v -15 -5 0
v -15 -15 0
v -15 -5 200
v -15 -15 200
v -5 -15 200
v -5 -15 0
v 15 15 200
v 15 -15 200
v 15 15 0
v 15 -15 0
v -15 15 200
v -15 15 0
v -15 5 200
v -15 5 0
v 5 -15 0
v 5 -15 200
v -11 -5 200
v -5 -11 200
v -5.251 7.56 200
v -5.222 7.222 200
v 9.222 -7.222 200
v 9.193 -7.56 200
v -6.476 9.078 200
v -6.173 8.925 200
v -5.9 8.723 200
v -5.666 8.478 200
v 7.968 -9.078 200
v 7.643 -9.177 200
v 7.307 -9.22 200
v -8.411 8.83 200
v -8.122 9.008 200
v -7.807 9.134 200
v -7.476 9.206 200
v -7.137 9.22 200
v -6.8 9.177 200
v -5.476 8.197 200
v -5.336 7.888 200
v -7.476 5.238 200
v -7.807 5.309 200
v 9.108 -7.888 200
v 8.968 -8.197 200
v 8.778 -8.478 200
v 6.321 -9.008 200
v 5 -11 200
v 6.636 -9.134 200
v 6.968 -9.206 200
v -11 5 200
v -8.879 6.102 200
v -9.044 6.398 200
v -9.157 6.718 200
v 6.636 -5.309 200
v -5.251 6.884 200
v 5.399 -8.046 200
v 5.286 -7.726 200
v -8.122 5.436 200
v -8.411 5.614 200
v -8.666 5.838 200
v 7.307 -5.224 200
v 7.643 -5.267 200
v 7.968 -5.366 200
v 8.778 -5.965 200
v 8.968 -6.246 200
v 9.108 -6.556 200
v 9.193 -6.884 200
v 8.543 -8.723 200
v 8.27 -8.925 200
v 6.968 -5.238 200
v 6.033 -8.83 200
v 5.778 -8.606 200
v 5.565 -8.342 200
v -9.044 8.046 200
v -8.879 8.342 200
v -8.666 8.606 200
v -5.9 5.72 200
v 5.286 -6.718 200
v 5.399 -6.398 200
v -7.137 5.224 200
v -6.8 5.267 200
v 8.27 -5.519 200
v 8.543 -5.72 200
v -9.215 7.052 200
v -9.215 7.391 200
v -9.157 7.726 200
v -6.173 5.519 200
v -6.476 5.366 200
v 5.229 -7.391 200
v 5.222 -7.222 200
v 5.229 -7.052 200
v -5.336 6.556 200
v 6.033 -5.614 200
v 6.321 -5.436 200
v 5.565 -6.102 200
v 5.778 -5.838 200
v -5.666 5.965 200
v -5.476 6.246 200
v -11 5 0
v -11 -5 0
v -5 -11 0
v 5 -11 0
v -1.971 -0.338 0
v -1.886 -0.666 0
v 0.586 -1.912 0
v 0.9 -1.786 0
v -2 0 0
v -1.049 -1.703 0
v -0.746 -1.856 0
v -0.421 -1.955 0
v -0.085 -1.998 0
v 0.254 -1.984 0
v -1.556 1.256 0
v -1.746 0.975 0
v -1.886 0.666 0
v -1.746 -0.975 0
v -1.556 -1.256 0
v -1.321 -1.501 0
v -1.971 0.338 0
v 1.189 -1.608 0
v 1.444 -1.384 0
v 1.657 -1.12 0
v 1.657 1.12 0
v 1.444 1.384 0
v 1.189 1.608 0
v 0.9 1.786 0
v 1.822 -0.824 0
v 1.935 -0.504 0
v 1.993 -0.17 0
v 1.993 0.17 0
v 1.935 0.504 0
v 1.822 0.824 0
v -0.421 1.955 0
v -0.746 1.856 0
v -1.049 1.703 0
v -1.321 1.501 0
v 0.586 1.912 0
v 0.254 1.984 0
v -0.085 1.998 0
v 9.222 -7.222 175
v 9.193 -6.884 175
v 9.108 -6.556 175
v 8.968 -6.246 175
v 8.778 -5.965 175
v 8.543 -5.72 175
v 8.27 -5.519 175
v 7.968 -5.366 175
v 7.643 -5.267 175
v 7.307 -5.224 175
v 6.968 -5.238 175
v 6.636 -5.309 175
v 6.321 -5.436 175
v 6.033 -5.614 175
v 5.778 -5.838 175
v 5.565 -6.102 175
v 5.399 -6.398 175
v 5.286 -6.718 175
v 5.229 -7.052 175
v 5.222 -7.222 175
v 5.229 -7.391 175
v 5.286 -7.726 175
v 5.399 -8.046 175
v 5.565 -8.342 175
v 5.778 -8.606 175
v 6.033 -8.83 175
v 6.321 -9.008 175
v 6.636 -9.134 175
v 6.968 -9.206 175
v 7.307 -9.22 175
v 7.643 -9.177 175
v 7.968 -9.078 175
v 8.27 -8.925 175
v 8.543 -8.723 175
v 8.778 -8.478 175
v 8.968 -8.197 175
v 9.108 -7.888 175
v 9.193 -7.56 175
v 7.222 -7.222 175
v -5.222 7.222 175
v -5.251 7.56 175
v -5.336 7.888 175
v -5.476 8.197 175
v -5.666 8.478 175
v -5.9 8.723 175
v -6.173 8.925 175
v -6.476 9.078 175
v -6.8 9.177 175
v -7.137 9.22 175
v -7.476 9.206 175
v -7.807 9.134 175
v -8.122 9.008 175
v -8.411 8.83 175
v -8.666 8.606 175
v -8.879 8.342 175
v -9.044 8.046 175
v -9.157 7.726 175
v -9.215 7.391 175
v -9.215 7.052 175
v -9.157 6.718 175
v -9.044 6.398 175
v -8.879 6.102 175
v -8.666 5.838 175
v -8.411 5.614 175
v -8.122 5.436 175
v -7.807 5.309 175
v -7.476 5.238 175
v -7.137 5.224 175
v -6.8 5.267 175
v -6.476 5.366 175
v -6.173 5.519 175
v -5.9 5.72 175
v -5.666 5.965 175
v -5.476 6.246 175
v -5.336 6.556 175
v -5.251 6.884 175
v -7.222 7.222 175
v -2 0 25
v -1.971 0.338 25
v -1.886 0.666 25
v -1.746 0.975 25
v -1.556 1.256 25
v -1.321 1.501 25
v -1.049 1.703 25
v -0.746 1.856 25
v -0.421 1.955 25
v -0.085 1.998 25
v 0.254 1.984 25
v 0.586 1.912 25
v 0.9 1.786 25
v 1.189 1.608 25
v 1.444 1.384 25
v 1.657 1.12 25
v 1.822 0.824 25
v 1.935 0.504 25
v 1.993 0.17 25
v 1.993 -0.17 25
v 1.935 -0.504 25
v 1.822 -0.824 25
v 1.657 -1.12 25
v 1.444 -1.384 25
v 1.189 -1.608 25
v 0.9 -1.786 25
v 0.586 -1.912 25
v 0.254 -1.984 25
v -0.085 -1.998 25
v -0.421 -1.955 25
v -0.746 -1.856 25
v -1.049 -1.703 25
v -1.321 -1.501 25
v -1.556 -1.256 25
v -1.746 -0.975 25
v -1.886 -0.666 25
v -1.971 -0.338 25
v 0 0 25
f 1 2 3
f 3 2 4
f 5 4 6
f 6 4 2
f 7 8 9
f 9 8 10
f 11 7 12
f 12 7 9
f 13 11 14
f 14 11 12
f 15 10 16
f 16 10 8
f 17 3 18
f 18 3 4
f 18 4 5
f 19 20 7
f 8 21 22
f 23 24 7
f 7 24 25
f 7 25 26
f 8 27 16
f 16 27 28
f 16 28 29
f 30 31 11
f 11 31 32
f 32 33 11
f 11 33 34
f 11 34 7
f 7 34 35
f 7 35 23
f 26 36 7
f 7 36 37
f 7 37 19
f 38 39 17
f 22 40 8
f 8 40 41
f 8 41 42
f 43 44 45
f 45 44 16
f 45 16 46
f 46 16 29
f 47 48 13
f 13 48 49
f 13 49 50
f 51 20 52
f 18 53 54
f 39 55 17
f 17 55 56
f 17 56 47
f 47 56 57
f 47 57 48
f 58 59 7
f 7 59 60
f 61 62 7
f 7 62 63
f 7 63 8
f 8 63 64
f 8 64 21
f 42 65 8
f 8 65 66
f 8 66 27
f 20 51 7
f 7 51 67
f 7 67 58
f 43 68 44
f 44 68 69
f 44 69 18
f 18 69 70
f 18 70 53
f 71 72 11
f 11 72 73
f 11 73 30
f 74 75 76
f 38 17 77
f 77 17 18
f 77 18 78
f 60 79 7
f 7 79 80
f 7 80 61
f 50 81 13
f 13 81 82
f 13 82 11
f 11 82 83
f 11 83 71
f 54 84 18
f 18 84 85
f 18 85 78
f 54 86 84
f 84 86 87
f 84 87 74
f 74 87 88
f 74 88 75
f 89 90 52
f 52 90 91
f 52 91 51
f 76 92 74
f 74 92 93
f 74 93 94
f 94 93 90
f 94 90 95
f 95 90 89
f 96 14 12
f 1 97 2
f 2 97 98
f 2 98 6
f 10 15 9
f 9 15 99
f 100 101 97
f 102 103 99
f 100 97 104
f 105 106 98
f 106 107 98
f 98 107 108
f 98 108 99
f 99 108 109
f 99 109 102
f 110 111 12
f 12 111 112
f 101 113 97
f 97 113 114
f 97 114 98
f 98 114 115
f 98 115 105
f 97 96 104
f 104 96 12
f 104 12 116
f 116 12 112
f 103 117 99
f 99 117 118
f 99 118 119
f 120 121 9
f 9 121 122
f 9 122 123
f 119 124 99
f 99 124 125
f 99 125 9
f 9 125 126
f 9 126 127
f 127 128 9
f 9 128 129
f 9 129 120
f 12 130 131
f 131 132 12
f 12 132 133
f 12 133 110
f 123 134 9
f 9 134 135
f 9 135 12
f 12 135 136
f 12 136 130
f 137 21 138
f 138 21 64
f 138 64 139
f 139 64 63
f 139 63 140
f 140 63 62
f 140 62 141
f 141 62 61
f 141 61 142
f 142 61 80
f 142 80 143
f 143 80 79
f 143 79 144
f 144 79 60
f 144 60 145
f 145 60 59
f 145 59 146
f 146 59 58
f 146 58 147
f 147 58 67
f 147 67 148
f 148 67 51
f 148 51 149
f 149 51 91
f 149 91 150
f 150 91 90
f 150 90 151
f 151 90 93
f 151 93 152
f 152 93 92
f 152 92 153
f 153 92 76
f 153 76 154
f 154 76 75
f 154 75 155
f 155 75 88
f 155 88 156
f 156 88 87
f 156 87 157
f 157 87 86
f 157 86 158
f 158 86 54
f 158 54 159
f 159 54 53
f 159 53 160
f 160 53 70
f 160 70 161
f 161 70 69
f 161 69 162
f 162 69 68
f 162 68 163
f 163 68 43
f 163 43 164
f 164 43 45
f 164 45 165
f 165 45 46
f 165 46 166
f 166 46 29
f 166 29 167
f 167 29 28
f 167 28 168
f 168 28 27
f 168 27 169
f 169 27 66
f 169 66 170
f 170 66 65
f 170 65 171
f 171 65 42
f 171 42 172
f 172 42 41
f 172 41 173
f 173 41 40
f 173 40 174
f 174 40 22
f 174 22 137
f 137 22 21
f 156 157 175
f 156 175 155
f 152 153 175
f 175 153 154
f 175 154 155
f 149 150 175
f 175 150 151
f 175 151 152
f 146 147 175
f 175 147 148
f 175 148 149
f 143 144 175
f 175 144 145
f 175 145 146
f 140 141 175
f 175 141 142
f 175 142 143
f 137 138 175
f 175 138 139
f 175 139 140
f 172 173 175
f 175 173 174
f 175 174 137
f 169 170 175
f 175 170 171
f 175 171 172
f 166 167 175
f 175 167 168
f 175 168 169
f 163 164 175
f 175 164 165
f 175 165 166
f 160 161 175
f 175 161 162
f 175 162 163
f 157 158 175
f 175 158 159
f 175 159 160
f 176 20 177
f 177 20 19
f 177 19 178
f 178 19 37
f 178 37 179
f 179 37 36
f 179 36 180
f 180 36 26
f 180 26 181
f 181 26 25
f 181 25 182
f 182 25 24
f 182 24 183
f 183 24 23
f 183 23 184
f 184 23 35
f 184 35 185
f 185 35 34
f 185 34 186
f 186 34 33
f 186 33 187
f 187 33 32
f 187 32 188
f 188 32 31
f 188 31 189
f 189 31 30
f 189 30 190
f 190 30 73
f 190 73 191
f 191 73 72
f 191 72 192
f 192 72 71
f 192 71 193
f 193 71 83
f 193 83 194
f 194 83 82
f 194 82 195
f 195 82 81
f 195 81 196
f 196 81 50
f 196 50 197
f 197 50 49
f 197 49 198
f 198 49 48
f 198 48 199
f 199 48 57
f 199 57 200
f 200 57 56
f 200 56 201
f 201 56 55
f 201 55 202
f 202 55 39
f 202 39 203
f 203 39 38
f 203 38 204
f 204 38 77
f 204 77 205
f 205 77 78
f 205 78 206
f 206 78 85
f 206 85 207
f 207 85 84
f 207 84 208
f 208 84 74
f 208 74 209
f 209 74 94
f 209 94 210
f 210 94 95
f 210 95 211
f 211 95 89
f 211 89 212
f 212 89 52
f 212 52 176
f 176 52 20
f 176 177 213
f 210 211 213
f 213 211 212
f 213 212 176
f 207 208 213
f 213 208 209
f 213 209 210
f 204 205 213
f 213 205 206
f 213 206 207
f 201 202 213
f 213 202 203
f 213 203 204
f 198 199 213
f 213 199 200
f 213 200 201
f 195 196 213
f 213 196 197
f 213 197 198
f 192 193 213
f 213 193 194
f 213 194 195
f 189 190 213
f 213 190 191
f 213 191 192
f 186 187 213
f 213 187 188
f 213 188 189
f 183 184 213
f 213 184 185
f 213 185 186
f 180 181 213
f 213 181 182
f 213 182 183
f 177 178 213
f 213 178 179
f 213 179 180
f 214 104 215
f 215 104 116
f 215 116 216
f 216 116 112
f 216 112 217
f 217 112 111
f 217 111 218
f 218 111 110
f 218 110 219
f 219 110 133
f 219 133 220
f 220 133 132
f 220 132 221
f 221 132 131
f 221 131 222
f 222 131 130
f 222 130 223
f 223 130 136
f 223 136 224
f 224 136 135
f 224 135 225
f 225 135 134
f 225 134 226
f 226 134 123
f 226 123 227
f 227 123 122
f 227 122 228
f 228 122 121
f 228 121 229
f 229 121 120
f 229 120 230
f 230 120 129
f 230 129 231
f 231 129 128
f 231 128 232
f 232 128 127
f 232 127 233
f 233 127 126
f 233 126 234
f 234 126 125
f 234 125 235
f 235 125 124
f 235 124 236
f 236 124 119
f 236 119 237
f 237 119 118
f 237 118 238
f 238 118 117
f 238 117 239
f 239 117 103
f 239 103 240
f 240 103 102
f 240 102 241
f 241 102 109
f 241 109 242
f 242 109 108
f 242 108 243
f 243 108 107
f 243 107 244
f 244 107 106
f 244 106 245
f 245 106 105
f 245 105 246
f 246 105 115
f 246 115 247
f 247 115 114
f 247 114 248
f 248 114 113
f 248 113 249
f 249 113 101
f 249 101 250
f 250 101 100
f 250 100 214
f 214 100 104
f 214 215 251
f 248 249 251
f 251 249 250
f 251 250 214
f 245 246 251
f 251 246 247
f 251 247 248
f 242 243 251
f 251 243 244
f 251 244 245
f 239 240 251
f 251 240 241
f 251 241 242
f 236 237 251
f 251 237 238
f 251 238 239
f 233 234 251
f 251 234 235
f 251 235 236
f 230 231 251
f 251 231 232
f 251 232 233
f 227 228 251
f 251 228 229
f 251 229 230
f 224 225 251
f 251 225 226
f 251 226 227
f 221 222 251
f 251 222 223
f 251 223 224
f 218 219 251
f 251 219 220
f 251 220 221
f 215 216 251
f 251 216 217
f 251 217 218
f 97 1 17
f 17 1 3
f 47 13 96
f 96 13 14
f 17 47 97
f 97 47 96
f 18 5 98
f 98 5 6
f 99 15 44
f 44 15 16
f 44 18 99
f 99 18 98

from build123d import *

# Parameters (mm, degrees)
CROQUIS1_W              = 30
CROQUIS1_H              = 30
SALIENTE_EXTRUIR1_DEPTH = 200
CROQUIS2_R              = 2
CORTAR_EXTRUIR1_DEPTH   = 25
CROQUIS4_R              = 2
CORTAR_EXTRUIR3_DEPTH   = 25
CROQUIS5_W              = 10
CROQUIS5_H              = 8
CROQUIS5_W_2            = 8
CROQUIS5_H_2            = 10
CORTAR_EXTRUIR4_DEPTH   = 200


with BuildPart() as part:
    # Croquis1 → Saliente-Extruir1 (new body)
    with BuildSketch(Plane.XY):
        Rectangle(CROQUIS1_W, CROQUIS1_H)
    extrude(amount=SALIENTE_EXTRUIR1_DEPTH)

    # Croquis2 → Cortar-Extruir1 (cut)
    with BuildSketch(Plane.XY.offset(200)):
        with Locations((-7.221825407, 7.221825407)):
            Circle(CROQUIS2_R)
        with Locations(Location((7.221825407, -7.221825407, 0), (0, 0, 180))):
            Circle(CROQUIS2_R)
    extrude(amount=-CORTAR_EXTRUIR1_DEPTH, mode=Mode.SUBTRACT)

    # Croquis4 → Cortar-Extruir3 (cut)
    with BuildSketch(Plane(origin=(0, 0, 0), x_dir=(-1, 0, 0), z_dir=(0, 0, -1))):
        Circle(CROQUIS4_R)
    extrude(amount=-CORTAR_EXTRUIR3_DEPTH, mode=Mode.SUBTRACT)

    # Croquis5 → Cortar-Extruir4 (cut)
    with BuildSketch(Plane(origin=(0, 0, 0), x_dir=(-1, 0, 0), z_dir=(0, 0, -1))):
        with Locations((0, -15)):
            Rectangle(CROQUIS5_W, CROQUIS5_H)
        with Locations((15, 0)):
            Rectangle(CROQUIS5_W_2, CROQUIS5_H_2)
    extrude(amount=-CORTAR_EXTRUIR4_DEPTH, mode=Mode.SUBTRACT)


solid = part.part
